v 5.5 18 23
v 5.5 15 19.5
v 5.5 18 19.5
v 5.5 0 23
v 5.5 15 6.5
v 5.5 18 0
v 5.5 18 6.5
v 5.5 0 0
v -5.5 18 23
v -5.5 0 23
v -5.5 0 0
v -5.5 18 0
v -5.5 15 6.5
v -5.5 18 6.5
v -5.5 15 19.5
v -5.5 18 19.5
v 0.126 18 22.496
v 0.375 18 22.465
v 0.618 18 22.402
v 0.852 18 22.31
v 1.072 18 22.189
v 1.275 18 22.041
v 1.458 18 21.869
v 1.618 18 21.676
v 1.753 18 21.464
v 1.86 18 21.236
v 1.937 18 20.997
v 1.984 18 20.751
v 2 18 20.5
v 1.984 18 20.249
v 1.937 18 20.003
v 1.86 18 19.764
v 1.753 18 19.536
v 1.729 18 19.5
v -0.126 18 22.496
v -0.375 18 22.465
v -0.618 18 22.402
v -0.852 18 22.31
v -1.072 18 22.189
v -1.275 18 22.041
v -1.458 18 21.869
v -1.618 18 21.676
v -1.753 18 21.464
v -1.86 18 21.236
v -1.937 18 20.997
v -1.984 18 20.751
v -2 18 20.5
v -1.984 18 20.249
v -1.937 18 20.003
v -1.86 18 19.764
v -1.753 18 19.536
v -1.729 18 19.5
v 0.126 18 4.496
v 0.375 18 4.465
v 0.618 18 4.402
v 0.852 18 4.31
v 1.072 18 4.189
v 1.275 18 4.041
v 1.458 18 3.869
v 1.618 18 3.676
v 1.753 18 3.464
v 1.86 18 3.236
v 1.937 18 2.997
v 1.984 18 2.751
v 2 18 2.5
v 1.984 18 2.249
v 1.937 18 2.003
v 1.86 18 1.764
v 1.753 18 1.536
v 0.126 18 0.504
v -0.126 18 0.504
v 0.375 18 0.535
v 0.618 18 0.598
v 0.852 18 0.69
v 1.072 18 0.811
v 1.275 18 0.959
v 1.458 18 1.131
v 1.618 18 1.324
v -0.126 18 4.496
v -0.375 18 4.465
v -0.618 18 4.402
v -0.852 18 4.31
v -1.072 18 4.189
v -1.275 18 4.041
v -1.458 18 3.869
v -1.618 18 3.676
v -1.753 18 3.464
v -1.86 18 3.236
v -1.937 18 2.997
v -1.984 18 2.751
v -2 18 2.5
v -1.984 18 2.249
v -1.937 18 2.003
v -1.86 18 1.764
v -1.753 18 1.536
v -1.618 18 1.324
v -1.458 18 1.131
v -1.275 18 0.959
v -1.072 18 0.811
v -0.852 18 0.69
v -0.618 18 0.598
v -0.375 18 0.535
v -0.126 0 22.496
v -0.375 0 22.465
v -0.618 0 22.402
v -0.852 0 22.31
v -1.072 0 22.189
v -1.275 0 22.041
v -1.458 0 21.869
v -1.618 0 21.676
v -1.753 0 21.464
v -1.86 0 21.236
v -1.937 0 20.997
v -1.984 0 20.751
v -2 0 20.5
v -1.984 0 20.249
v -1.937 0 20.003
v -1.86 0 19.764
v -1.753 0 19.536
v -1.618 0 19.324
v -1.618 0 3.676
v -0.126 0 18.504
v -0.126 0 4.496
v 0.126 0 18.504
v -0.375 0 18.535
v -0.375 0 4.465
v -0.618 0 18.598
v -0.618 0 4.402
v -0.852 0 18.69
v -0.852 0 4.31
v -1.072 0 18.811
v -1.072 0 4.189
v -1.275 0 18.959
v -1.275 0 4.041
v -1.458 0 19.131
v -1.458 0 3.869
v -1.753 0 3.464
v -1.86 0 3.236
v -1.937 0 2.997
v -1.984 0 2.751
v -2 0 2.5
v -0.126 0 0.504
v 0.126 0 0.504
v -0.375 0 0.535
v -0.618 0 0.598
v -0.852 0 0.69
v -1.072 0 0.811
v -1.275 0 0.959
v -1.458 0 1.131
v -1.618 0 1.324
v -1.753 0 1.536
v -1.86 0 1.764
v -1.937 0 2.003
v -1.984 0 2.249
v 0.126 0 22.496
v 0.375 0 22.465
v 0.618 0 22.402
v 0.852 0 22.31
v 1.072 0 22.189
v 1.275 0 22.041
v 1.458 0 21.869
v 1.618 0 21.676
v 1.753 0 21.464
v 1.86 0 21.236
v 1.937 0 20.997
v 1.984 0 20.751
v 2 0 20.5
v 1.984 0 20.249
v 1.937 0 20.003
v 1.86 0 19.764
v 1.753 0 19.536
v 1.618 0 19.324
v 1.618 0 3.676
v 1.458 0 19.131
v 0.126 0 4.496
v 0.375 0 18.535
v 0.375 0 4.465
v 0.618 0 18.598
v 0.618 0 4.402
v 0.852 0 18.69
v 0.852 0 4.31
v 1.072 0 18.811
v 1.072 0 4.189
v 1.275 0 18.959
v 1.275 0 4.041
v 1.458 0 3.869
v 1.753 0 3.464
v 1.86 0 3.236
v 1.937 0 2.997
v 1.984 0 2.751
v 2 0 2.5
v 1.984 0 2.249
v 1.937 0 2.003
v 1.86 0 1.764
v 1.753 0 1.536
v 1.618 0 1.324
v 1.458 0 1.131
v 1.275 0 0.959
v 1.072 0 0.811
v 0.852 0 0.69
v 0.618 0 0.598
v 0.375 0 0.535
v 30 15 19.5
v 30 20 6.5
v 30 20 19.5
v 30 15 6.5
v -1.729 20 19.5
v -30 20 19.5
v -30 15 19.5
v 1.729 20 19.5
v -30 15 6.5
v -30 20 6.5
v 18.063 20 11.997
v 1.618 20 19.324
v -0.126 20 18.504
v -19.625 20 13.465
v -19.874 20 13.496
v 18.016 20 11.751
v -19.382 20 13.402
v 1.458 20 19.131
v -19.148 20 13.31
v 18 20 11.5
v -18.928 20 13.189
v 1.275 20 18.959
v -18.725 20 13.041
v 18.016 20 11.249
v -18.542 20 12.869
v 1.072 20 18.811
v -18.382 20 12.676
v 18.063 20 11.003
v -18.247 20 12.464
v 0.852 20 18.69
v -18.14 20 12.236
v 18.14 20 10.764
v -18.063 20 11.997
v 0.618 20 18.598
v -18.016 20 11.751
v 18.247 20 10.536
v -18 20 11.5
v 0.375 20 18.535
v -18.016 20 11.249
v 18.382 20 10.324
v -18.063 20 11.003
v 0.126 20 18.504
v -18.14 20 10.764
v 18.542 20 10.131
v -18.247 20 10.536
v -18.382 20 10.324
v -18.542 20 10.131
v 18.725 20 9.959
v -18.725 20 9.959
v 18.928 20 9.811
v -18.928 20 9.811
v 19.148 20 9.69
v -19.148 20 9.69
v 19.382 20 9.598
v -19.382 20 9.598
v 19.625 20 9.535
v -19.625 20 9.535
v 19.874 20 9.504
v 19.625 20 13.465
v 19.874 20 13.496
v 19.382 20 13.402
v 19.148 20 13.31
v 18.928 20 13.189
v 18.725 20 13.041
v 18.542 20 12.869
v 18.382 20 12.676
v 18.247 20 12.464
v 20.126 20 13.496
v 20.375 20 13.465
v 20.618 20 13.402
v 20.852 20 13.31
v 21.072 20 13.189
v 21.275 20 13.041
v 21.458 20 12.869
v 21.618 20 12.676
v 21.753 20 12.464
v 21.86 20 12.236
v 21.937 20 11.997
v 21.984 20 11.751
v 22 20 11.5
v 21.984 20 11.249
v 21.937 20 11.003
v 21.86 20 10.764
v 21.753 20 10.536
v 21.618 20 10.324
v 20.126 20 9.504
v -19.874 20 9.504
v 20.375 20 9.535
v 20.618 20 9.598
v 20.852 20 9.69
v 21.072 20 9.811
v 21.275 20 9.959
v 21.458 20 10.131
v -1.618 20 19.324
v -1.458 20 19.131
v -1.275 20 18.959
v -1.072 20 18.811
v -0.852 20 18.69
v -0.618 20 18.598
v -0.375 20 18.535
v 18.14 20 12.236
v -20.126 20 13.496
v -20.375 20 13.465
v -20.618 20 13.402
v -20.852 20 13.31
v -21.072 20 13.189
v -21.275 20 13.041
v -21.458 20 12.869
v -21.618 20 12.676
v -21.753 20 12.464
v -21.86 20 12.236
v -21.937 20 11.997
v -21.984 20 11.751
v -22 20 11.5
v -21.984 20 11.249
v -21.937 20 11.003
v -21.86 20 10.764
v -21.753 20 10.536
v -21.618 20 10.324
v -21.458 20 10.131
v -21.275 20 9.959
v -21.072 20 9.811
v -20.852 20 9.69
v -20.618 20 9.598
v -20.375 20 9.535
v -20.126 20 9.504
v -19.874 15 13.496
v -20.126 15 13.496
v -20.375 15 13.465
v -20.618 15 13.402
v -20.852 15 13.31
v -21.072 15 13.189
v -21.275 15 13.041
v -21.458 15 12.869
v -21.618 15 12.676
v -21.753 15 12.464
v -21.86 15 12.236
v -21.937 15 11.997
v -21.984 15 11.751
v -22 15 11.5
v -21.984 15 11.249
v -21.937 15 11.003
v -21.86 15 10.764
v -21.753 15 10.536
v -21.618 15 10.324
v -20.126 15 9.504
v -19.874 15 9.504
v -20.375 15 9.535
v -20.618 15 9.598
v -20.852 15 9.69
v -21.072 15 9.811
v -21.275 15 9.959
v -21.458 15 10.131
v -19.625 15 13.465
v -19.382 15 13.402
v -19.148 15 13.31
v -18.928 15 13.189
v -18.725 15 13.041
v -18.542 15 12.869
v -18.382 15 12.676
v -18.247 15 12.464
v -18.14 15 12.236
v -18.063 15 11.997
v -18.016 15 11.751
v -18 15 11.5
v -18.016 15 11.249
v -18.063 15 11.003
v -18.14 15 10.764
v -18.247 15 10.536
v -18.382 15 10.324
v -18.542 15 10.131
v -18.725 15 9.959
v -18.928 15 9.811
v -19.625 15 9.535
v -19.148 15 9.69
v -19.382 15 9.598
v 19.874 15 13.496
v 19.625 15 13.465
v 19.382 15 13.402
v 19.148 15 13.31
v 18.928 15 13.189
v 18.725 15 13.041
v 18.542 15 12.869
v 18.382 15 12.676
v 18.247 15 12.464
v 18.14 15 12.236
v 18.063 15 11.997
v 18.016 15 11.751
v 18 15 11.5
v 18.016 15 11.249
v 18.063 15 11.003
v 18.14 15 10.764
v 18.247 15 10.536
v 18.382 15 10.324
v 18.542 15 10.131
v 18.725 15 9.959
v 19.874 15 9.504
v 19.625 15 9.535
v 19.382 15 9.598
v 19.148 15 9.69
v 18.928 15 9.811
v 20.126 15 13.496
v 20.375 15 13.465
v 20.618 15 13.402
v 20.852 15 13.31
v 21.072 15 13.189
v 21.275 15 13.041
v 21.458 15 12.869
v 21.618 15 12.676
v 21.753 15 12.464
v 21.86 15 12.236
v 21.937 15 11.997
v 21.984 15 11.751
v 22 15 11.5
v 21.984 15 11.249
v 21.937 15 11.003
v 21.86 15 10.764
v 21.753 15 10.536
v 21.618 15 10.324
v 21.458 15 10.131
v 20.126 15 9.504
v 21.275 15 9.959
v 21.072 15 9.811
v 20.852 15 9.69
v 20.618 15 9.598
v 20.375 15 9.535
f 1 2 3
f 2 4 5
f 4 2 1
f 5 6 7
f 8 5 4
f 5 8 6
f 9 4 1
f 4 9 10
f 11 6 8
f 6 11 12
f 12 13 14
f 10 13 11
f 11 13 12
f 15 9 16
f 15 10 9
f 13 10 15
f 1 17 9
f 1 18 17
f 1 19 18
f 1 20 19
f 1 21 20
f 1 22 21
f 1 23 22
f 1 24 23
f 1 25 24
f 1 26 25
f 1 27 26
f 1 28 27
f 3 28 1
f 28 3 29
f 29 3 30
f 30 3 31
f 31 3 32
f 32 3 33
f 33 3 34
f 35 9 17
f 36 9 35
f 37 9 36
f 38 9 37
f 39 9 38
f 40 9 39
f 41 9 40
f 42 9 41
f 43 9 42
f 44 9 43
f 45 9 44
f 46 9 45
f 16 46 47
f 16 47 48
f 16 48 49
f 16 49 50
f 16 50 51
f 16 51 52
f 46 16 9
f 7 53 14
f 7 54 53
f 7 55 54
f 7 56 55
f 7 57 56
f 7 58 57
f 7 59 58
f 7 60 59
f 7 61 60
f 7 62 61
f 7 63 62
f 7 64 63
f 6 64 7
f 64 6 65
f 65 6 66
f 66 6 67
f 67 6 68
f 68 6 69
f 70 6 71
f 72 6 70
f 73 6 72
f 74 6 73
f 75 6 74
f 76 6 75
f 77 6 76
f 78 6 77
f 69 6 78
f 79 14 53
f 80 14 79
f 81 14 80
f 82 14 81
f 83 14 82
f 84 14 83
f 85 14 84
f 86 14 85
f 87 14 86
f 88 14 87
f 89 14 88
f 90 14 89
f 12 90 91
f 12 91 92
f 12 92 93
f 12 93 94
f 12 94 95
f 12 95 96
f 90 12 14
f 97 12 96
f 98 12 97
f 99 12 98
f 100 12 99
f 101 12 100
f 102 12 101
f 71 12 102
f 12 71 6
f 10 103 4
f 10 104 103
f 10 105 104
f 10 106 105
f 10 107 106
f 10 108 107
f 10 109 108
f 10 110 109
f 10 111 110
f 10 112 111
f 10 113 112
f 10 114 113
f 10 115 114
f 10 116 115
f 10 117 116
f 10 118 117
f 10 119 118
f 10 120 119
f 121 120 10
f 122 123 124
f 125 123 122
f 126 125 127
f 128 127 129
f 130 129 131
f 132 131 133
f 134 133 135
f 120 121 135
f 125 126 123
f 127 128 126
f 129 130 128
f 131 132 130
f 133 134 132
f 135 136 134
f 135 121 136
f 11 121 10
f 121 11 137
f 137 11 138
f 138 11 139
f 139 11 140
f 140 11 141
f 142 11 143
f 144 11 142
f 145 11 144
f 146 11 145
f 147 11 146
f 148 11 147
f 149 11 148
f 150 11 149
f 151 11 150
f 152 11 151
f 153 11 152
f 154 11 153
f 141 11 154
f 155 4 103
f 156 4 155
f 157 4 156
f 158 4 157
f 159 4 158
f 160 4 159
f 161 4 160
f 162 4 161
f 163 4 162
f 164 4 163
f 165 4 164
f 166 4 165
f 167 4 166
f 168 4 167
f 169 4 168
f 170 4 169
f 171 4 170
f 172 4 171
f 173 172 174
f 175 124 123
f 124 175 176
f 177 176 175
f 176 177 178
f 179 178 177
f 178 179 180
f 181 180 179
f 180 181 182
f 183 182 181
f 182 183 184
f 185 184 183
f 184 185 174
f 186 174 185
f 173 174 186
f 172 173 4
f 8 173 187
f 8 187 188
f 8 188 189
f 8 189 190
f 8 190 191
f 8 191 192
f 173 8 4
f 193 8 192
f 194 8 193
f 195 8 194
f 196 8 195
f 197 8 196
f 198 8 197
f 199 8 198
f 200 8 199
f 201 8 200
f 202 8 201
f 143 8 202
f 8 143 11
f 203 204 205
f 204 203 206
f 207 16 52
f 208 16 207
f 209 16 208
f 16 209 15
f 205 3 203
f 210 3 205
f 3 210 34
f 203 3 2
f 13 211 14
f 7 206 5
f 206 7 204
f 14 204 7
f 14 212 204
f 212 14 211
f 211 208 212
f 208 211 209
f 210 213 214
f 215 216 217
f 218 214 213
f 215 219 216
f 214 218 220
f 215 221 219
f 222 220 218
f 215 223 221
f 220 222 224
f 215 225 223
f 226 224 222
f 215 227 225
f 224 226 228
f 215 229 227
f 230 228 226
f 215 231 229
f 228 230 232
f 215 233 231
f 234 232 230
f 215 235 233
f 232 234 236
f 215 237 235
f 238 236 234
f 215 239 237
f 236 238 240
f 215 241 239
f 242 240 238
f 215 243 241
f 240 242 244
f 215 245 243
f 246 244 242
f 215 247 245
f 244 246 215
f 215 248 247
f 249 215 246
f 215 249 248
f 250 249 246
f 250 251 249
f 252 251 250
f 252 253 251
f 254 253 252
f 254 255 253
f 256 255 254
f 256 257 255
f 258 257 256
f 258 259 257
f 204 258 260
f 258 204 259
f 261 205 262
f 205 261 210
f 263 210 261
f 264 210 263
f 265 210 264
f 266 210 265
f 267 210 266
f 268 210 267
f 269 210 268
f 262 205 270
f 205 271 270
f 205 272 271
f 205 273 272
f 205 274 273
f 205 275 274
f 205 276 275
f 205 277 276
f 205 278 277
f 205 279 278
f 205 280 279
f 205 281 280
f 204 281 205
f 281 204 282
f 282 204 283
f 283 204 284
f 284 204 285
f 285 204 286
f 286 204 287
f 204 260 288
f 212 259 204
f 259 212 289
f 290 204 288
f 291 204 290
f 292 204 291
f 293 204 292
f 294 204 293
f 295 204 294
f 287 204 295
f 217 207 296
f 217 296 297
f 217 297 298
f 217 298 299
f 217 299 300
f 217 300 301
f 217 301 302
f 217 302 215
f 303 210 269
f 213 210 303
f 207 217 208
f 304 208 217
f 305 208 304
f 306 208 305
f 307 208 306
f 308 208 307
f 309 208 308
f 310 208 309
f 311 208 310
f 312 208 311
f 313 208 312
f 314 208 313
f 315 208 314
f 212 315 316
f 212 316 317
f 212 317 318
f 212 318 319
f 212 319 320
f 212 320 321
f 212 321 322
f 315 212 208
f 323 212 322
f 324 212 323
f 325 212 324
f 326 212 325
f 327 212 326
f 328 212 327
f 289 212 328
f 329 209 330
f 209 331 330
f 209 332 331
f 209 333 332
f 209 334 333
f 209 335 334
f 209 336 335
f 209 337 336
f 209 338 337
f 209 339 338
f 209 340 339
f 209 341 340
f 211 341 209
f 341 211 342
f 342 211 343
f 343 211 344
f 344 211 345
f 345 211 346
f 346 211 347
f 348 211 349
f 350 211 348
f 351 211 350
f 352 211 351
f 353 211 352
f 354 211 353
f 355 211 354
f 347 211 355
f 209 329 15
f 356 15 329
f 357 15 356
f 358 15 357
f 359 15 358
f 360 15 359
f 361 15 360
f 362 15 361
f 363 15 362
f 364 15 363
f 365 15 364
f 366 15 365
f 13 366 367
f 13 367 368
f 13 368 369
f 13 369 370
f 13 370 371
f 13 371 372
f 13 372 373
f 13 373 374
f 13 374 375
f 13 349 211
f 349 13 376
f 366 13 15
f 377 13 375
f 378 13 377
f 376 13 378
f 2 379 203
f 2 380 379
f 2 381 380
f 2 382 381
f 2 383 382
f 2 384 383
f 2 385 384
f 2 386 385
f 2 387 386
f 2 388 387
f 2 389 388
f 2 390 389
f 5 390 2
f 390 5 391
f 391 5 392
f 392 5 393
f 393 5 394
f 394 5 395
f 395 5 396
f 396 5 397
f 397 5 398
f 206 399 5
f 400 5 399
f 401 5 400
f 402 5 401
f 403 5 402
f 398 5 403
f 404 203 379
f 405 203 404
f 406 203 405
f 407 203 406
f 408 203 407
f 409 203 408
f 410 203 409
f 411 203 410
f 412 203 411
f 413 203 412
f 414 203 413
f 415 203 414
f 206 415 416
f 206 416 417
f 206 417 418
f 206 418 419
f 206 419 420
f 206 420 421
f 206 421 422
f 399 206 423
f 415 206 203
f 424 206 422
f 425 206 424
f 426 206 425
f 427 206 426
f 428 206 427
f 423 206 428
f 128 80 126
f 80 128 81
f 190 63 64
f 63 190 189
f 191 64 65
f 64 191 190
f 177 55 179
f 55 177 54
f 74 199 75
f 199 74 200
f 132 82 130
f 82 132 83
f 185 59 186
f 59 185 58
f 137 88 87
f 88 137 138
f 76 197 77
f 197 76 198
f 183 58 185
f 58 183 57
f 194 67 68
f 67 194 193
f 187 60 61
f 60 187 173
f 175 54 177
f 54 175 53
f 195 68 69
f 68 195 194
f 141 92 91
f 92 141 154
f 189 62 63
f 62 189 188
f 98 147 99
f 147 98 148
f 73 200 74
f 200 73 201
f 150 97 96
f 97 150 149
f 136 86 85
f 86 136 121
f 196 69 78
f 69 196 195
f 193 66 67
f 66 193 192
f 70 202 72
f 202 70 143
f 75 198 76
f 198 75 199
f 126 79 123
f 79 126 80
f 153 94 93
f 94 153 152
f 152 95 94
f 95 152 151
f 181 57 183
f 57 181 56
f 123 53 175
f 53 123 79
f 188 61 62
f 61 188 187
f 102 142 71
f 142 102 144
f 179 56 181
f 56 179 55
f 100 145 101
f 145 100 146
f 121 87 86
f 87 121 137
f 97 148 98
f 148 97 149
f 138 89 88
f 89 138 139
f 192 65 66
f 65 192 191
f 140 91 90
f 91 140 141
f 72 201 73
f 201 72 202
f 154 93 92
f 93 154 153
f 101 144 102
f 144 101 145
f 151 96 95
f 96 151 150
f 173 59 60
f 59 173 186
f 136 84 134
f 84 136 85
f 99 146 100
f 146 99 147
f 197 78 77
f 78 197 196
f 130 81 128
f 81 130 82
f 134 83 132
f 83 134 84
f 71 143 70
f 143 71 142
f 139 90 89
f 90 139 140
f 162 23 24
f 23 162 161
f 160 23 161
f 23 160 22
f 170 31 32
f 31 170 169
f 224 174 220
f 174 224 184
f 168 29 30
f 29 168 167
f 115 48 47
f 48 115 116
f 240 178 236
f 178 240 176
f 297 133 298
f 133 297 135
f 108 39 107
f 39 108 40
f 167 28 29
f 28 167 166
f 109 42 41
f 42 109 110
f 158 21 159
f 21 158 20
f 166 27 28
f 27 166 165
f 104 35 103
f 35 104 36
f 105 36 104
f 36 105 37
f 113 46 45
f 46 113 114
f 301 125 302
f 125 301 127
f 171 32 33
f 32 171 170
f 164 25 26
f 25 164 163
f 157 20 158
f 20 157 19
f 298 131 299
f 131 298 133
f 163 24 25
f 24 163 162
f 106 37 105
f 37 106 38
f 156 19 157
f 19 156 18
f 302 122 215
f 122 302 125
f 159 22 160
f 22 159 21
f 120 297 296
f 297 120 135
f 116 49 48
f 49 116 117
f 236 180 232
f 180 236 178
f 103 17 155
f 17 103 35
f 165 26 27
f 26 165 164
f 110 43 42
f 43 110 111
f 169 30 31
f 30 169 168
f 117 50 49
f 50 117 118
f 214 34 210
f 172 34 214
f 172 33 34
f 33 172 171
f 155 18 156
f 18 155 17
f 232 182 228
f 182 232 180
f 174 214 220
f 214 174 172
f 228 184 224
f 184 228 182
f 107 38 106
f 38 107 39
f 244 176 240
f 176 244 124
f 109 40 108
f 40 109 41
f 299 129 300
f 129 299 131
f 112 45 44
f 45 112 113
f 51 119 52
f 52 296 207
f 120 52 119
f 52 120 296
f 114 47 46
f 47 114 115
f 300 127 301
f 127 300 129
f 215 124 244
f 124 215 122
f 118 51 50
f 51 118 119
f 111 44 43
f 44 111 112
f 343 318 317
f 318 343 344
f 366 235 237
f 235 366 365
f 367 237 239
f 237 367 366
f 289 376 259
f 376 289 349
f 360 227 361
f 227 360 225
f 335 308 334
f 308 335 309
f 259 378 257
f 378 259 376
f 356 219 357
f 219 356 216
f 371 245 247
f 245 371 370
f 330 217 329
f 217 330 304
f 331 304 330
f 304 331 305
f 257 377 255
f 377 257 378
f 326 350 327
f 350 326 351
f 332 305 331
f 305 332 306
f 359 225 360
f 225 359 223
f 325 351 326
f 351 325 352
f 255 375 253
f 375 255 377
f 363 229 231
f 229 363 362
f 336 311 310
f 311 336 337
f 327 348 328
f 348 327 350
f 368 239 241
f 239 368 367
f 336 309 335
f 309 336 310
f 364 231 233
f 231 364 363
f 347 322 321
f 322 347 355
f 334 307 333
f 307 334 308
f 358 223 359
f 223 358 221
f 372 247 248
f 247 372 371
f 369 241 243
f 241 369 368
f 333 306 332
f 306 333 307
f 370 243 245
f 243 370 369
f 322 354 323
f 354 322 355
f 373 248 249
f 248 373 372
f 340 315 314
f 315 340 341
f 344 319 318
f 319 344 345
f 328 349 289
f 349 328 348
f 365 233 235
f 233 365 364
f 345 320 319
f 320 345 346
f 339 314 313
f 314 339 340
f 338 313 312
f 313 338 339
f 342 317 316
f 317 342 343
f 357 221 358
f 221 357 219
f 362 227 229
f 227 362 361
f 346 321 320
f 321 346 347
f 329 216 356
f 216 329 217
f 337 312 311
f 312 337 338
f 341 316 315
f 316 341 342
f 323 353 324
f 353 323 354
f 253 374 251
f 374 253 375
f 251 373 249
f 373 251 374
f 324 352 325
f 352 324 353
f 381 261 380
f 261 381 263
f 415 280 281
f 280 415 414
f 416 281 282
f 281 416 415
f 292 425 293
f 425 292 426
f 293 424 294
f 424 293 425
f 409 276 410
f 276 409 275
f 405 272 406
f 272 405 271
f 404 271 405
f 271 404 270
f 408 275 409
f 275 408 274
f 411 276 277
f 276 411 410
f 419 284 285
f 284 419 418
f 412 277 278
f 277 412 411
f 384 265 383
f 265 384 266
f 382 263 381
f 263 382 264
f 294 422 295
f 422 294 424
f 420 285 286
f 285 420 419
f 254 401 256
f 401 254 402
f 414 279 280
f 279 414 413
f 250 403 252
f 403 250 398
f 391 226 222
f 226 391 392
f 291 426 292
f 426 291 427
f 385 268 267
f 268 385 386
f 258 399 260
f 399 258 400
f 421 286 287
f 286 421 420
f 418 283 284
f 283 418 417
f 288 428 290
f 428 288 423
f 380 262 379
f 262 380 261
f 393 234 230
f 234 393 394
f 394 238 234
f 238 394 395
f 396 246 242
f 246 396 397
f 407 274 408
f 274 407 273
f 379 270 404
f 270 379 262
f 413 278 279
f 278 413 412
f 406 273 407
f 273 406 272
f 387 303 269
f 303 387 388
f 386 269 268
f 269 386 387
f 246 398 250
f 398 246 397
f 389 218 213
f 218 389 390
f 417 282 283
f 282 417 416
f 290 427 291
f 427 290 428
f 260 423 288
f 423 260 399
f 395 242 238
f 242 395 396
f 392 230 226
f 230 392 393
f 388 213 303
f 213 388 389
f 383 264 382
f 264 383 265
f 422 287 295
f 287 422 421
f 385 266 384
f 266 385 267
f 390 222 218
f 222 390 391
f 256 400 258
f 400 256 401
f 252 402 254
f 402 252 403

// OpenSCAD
//27

$fn=50;

HH=48;

// if sizing
// HH=10;
BOX=48;
WALL=2;

SBHT=5;
SBLEN=15;

MD=25;

CUTWID=1;

module body1() {
    // main body external
    hull() {
        for (qq=[-1,1]) {
            translate([qq*BOX/2,0,0])
                cylinder(HH, d=MD+WALL*2);
        }
    }
    // front and back screw hole extensions
    for (qq=[-1,1]) {
        // TODO const 1.6
        translate([qq*MD*1.6,0,0]) translate([-SBLEN/2,-SBHT/2,0]) cube([SBLEN,SBHT,HH]);
    }
}

module body2() {
    // main body cutouts
    for (qq=[-1,1]) {
        translate([qq*BOX/2,0,0]) cylinder(HH, d=MD);
        translate([0,0,0]) translate([-((MD-5)/2),-((MD)/2),0]) cube([MD-5,MD,HH]);
        // cutter
        translate([qq*40,0,0]) translate([-10,-CUTWID/2,0]) cube([20,CUTWID,HH]);
        
        // screw holes
        for (zz=[-1,0,1]) {
        #translate([qq*(MD*1.6+3),0,HH/2+HH/3*zz])
            translate([0,20,3/2]) rotate([90,0,0]) cylinder(44,d=3);
        }
    }
    // notches for motor wires. front motor is left pointing, so notch on right.
    translate([10,0,HH-3]) translate([-5/2,-7/2,0]) cube([5,7,3]);
    translate([-10,0,0]) translate([-5/2,-7/2,0]) cube([5,7,3]);
    
    // top wire notch. move to center?
    # translate([-6,MD/2,HH-3]) translate([-7/2,-5/2,0]) cube([7,5,3]);
}

module body3() {
    // The top bolthole is slightly offset from the bottom one.  But in this new
    // design we might be able to bring this back to symmetry if we change the
    // side attacher.

    // top bolthole.  This keeps us compatible with the original design side part.
    translate([0,MD/2-WALL-2,0]) {
        difference() {
            union() {
                translate([-3,0,0]) cube([6,6,HH]);
                cylinder(HH,d=6);
            }
            cylinder(HH,d=3);
        }
    }

    // bottom bolthole
    translate([0,-MD/2+WALL,0]) {
        difference() {
            union() {
                translate([-3,-3,0]) cube([6,3,HH]);
                cylinder(HH,d=6);
            }
            cylinder(HH,d=3);
        }
    }
}


module body() {
    difference() {
        body1();
        body2();
    }
    body3();
}


module hexnut(d, h) {
    r=d/2;
    points = [
        [r, 0],
        [r * cos(60), r * sin(60)],
        [r * cos(120), r * sin(120)],
        [r * cos(180), r * sin(180)],
        [r * cos(240), r * sin(240)],
        [r * cos(300), r * sin(300)]
    ];
    p=[[0,1,2,3,4,5]];
    linear_extrude(height=h) polygon(points=points, paths=p);
}



SIDECOVER_HH=2.5;
module sidecover() {
    // TODO: make module for this hull, so all pieces fit nicely
    difference() {
        union() {
            hull() {
                for (qq=[-1,1]) {
                    translate([qq*BOX/2,0,0])
                        cylinder(SIDECOVER_HH, d=MD+WALL*2);
                }
            }
            translate([BOX/2,0,0]) cylinder(6.25, d1=18, d2=11);
        }
        
        // motor hole
        translate([-BOX/2,0,0]) cylinder(SIDECOVER_HH, d=MD);
        // axle hole
        translate([BOX/2,0,0]) cylinder(6.25, d=3);
        // axle nut hole
        translate([BOX/2,0,4.25]) hexnut(7,3);
   
        // bracket indentation
        #translate([0,-1,SIDECOVER_HH/2])
            translate([-14/2,-25/2,0]) cube([14,25,SIDECOVER_HH]);

        // top, bottom body screw holes
        translate([0,MD/2-WALL-2,0]) cylinder(HH,d=3);
        translate([0,-MD/2+WALL,0]) cylinder(SIDECOVER_HH,d=3);
    }
}

DW_NTEETH=14;
DW_OD=30.5;
DW_ID=27;
DW_HH=11;

module basic_wheel_1() {
    difference() {
        cylinder(DW_HH,d=DW_OD);
        cylinder(DW_HH,d=DW_ID);
    }
    //spokes
    translate([0,0,1]) cylinder(1,d=DW_ID);
    for (i=[0:DW_NTEETH-1]) {
        a =(360/DW_NTEETH)*i;
        #translate([(DW_OD-1)/2*cos(a),(DW_OD-1)/2*sin(a),0]) translate([0,0,1]) cylinder(DW_HH-2,d=3);
    }
}

module basic_wheel_2() {
    cylinder(5,d=13);
}

module basic_wheel() {
    difference() {
        union() {
            basic_wheel_1();
            basic_wheel_2();
        }
        for (i=[0:6-1]) {
            a=(360/6)*i;
            echo(i);
            #translate([10*cos(a),10*sin(a),0]) cylinder(5,d=5);
        }
    }
}

module drive_wheel() {
}

module idler_wheel() {
    difference() {
        union() {
            basic_wheel();
            cylinder(8,d1=13,d2=4);
        }
        // inside hub
        cylinder(10,d=3);
    }
}

module notch_thing() {
    // this is needed so that the main axlemount can print flat on the bed.
}

module axlemount() {
    AM_HH1=23;
    AM_WW1=11;
    AM_HH2=13;
    AM_WW2=60;
    AM_DEPTH=18;
    difference() {
        union() {
            translate([-AM_WW1/2,0,0]) cube([AM_WW1,AM_DEPTH,AM_HH1]);
            translate([0,15,13]) translate([-AM_WW2/2,0,-AM_HH2/2]) cube([AM_WW2,5,AM_HH2]);
        }
        // body holes
        for (qq=[-1,1]) {
            translate([0,20,qq*9+AM_HH1/2]) rotate([90,0,0]) cylinder(100,d=4);
        }
        //axle holes
        for (qq=[-1,1]) {
            #translate([qq*20,0,0]) translate([0,20,AM_HH1/2]) rotate([90,0,0]) cylinder(100,d=4);
        }
    }
}


// TODO axlemount
// TODO notch_thing
// TODO idler_wheel
// TODO drive_wheel

//translate([0,40,0]) body();
//sidecover();
axlemount();
//idler_wheel();
